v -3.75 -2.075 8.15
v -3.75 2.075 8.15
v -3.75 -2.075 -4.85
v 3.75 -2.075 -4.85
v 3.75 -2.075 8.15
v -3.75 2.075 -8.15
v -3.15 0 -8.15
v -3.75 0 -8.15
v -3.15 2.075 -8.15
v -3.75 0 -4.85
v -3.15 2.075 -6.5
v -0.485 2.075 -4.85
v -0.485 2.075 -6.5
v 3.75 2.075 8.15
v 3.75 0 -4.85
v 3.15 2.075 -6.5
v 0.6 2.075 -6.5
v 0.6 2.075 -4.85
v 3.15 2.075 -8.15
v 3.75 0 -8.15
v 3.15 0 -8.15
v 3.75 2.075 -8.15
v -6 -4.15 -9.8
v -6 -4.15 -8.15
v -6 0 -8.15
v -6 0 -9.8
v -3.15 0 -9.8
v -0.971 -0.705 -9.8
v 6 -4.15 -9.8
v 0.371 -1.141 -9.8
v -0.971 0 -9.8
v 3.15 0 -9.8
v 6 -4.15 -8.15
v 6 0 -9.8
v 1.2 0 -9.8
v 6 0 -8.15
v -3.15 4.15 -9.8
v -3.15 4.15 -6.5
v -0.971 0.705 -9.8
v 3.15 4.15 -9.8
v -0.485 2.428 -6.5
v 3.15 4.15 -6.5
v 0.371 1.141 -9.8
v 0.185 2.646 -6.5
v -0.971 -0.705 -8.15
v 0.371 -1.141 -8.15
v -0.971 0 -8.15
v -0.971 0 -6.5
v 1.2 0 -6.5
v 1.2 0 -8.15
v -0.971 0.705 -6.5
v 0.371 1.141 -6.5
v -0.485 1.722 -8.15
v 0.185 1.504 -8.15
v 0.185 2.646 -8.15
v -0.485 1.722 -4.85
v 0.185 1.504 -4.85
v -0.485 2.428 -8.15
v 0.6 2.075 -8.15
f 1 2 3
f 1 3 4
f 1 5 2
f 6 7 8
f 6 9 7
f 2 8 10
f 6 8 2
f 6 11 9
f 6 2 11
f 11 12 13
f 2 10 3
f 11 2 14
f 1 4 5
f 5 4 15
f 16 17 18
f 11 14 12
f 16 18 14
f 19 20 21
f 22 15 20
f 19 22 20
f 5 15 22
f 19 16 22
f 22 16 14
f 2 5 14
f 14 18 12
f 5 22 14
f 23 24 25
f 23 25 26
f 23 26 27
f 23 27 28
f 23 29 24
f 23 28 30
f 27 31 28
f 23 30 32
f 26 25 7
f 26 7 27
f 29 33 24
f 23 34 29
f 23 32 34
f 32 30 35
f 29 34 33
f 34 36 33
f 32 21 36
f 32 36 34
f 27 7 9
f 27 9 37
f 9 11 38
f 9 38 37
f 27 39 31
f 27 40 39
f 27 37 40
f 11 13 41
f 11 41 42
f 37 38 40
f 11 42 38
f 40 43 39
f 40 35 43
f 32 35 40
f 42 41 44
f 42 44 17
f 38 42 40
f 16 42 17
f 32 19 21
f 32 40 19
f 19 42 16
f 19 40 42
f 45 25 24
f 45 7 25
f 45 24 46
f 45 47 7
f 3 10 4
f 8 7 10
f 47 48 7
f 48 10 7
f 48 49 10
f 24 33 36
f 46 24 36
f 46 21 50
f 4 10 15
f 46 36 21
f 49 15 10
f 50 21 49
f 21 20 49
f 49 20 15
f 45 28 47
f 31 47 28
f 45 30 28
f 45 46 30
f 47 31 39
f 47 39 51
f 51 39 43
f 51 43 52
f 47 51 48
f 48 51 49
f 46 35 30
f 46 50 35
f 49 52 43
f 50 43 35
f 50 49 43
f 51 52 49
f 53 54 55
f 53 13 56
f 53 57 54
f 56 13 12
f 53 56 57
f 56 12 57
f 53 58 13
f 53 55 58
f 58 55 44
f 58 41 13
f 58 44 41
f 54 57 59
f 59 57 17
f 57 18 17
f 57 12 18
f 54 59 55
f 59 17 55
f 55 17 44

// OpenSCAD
// Sharp GP2Y0A21YK0F 測距センサ モデリング (単位: mm)

module gp2y0a21yk0f() {
  difference() {
    union() {
      // 本体
      cube([7.5, 4.15, 16.3], center = true);

      // コネクタ側突起
      translate([0, -2.075, -8.15]) cube([12, 4.15, 3.3], center = true);

      // レンズ側突起
      translate([0, 2.075, -8.15]) cube([6.3, 4.15, 3.3], center = true);
    }

    // コネクタ穴 (データシート参照)
    translate([0, -2.075, -8.15 + 3.3/2]) cube([12, 4.15, 3.3], center = true);

    // PWB取付穴 (データシート参照)
    translate([0, 0, -16.3/2]) cylinder(h=3.3, r=1.2, center=true);
    translate([0, 0, -16.3/2]) cylinder(h=3.3, r=1.2, center=true);

    // LED レンズ穴 (データシート参照)
    translate([0, 2.075, -8.15 + 3.3/2]) cylinder(h=3.3, r=0.6, center = true);
  }
}

gp2y0a21yk0f();
